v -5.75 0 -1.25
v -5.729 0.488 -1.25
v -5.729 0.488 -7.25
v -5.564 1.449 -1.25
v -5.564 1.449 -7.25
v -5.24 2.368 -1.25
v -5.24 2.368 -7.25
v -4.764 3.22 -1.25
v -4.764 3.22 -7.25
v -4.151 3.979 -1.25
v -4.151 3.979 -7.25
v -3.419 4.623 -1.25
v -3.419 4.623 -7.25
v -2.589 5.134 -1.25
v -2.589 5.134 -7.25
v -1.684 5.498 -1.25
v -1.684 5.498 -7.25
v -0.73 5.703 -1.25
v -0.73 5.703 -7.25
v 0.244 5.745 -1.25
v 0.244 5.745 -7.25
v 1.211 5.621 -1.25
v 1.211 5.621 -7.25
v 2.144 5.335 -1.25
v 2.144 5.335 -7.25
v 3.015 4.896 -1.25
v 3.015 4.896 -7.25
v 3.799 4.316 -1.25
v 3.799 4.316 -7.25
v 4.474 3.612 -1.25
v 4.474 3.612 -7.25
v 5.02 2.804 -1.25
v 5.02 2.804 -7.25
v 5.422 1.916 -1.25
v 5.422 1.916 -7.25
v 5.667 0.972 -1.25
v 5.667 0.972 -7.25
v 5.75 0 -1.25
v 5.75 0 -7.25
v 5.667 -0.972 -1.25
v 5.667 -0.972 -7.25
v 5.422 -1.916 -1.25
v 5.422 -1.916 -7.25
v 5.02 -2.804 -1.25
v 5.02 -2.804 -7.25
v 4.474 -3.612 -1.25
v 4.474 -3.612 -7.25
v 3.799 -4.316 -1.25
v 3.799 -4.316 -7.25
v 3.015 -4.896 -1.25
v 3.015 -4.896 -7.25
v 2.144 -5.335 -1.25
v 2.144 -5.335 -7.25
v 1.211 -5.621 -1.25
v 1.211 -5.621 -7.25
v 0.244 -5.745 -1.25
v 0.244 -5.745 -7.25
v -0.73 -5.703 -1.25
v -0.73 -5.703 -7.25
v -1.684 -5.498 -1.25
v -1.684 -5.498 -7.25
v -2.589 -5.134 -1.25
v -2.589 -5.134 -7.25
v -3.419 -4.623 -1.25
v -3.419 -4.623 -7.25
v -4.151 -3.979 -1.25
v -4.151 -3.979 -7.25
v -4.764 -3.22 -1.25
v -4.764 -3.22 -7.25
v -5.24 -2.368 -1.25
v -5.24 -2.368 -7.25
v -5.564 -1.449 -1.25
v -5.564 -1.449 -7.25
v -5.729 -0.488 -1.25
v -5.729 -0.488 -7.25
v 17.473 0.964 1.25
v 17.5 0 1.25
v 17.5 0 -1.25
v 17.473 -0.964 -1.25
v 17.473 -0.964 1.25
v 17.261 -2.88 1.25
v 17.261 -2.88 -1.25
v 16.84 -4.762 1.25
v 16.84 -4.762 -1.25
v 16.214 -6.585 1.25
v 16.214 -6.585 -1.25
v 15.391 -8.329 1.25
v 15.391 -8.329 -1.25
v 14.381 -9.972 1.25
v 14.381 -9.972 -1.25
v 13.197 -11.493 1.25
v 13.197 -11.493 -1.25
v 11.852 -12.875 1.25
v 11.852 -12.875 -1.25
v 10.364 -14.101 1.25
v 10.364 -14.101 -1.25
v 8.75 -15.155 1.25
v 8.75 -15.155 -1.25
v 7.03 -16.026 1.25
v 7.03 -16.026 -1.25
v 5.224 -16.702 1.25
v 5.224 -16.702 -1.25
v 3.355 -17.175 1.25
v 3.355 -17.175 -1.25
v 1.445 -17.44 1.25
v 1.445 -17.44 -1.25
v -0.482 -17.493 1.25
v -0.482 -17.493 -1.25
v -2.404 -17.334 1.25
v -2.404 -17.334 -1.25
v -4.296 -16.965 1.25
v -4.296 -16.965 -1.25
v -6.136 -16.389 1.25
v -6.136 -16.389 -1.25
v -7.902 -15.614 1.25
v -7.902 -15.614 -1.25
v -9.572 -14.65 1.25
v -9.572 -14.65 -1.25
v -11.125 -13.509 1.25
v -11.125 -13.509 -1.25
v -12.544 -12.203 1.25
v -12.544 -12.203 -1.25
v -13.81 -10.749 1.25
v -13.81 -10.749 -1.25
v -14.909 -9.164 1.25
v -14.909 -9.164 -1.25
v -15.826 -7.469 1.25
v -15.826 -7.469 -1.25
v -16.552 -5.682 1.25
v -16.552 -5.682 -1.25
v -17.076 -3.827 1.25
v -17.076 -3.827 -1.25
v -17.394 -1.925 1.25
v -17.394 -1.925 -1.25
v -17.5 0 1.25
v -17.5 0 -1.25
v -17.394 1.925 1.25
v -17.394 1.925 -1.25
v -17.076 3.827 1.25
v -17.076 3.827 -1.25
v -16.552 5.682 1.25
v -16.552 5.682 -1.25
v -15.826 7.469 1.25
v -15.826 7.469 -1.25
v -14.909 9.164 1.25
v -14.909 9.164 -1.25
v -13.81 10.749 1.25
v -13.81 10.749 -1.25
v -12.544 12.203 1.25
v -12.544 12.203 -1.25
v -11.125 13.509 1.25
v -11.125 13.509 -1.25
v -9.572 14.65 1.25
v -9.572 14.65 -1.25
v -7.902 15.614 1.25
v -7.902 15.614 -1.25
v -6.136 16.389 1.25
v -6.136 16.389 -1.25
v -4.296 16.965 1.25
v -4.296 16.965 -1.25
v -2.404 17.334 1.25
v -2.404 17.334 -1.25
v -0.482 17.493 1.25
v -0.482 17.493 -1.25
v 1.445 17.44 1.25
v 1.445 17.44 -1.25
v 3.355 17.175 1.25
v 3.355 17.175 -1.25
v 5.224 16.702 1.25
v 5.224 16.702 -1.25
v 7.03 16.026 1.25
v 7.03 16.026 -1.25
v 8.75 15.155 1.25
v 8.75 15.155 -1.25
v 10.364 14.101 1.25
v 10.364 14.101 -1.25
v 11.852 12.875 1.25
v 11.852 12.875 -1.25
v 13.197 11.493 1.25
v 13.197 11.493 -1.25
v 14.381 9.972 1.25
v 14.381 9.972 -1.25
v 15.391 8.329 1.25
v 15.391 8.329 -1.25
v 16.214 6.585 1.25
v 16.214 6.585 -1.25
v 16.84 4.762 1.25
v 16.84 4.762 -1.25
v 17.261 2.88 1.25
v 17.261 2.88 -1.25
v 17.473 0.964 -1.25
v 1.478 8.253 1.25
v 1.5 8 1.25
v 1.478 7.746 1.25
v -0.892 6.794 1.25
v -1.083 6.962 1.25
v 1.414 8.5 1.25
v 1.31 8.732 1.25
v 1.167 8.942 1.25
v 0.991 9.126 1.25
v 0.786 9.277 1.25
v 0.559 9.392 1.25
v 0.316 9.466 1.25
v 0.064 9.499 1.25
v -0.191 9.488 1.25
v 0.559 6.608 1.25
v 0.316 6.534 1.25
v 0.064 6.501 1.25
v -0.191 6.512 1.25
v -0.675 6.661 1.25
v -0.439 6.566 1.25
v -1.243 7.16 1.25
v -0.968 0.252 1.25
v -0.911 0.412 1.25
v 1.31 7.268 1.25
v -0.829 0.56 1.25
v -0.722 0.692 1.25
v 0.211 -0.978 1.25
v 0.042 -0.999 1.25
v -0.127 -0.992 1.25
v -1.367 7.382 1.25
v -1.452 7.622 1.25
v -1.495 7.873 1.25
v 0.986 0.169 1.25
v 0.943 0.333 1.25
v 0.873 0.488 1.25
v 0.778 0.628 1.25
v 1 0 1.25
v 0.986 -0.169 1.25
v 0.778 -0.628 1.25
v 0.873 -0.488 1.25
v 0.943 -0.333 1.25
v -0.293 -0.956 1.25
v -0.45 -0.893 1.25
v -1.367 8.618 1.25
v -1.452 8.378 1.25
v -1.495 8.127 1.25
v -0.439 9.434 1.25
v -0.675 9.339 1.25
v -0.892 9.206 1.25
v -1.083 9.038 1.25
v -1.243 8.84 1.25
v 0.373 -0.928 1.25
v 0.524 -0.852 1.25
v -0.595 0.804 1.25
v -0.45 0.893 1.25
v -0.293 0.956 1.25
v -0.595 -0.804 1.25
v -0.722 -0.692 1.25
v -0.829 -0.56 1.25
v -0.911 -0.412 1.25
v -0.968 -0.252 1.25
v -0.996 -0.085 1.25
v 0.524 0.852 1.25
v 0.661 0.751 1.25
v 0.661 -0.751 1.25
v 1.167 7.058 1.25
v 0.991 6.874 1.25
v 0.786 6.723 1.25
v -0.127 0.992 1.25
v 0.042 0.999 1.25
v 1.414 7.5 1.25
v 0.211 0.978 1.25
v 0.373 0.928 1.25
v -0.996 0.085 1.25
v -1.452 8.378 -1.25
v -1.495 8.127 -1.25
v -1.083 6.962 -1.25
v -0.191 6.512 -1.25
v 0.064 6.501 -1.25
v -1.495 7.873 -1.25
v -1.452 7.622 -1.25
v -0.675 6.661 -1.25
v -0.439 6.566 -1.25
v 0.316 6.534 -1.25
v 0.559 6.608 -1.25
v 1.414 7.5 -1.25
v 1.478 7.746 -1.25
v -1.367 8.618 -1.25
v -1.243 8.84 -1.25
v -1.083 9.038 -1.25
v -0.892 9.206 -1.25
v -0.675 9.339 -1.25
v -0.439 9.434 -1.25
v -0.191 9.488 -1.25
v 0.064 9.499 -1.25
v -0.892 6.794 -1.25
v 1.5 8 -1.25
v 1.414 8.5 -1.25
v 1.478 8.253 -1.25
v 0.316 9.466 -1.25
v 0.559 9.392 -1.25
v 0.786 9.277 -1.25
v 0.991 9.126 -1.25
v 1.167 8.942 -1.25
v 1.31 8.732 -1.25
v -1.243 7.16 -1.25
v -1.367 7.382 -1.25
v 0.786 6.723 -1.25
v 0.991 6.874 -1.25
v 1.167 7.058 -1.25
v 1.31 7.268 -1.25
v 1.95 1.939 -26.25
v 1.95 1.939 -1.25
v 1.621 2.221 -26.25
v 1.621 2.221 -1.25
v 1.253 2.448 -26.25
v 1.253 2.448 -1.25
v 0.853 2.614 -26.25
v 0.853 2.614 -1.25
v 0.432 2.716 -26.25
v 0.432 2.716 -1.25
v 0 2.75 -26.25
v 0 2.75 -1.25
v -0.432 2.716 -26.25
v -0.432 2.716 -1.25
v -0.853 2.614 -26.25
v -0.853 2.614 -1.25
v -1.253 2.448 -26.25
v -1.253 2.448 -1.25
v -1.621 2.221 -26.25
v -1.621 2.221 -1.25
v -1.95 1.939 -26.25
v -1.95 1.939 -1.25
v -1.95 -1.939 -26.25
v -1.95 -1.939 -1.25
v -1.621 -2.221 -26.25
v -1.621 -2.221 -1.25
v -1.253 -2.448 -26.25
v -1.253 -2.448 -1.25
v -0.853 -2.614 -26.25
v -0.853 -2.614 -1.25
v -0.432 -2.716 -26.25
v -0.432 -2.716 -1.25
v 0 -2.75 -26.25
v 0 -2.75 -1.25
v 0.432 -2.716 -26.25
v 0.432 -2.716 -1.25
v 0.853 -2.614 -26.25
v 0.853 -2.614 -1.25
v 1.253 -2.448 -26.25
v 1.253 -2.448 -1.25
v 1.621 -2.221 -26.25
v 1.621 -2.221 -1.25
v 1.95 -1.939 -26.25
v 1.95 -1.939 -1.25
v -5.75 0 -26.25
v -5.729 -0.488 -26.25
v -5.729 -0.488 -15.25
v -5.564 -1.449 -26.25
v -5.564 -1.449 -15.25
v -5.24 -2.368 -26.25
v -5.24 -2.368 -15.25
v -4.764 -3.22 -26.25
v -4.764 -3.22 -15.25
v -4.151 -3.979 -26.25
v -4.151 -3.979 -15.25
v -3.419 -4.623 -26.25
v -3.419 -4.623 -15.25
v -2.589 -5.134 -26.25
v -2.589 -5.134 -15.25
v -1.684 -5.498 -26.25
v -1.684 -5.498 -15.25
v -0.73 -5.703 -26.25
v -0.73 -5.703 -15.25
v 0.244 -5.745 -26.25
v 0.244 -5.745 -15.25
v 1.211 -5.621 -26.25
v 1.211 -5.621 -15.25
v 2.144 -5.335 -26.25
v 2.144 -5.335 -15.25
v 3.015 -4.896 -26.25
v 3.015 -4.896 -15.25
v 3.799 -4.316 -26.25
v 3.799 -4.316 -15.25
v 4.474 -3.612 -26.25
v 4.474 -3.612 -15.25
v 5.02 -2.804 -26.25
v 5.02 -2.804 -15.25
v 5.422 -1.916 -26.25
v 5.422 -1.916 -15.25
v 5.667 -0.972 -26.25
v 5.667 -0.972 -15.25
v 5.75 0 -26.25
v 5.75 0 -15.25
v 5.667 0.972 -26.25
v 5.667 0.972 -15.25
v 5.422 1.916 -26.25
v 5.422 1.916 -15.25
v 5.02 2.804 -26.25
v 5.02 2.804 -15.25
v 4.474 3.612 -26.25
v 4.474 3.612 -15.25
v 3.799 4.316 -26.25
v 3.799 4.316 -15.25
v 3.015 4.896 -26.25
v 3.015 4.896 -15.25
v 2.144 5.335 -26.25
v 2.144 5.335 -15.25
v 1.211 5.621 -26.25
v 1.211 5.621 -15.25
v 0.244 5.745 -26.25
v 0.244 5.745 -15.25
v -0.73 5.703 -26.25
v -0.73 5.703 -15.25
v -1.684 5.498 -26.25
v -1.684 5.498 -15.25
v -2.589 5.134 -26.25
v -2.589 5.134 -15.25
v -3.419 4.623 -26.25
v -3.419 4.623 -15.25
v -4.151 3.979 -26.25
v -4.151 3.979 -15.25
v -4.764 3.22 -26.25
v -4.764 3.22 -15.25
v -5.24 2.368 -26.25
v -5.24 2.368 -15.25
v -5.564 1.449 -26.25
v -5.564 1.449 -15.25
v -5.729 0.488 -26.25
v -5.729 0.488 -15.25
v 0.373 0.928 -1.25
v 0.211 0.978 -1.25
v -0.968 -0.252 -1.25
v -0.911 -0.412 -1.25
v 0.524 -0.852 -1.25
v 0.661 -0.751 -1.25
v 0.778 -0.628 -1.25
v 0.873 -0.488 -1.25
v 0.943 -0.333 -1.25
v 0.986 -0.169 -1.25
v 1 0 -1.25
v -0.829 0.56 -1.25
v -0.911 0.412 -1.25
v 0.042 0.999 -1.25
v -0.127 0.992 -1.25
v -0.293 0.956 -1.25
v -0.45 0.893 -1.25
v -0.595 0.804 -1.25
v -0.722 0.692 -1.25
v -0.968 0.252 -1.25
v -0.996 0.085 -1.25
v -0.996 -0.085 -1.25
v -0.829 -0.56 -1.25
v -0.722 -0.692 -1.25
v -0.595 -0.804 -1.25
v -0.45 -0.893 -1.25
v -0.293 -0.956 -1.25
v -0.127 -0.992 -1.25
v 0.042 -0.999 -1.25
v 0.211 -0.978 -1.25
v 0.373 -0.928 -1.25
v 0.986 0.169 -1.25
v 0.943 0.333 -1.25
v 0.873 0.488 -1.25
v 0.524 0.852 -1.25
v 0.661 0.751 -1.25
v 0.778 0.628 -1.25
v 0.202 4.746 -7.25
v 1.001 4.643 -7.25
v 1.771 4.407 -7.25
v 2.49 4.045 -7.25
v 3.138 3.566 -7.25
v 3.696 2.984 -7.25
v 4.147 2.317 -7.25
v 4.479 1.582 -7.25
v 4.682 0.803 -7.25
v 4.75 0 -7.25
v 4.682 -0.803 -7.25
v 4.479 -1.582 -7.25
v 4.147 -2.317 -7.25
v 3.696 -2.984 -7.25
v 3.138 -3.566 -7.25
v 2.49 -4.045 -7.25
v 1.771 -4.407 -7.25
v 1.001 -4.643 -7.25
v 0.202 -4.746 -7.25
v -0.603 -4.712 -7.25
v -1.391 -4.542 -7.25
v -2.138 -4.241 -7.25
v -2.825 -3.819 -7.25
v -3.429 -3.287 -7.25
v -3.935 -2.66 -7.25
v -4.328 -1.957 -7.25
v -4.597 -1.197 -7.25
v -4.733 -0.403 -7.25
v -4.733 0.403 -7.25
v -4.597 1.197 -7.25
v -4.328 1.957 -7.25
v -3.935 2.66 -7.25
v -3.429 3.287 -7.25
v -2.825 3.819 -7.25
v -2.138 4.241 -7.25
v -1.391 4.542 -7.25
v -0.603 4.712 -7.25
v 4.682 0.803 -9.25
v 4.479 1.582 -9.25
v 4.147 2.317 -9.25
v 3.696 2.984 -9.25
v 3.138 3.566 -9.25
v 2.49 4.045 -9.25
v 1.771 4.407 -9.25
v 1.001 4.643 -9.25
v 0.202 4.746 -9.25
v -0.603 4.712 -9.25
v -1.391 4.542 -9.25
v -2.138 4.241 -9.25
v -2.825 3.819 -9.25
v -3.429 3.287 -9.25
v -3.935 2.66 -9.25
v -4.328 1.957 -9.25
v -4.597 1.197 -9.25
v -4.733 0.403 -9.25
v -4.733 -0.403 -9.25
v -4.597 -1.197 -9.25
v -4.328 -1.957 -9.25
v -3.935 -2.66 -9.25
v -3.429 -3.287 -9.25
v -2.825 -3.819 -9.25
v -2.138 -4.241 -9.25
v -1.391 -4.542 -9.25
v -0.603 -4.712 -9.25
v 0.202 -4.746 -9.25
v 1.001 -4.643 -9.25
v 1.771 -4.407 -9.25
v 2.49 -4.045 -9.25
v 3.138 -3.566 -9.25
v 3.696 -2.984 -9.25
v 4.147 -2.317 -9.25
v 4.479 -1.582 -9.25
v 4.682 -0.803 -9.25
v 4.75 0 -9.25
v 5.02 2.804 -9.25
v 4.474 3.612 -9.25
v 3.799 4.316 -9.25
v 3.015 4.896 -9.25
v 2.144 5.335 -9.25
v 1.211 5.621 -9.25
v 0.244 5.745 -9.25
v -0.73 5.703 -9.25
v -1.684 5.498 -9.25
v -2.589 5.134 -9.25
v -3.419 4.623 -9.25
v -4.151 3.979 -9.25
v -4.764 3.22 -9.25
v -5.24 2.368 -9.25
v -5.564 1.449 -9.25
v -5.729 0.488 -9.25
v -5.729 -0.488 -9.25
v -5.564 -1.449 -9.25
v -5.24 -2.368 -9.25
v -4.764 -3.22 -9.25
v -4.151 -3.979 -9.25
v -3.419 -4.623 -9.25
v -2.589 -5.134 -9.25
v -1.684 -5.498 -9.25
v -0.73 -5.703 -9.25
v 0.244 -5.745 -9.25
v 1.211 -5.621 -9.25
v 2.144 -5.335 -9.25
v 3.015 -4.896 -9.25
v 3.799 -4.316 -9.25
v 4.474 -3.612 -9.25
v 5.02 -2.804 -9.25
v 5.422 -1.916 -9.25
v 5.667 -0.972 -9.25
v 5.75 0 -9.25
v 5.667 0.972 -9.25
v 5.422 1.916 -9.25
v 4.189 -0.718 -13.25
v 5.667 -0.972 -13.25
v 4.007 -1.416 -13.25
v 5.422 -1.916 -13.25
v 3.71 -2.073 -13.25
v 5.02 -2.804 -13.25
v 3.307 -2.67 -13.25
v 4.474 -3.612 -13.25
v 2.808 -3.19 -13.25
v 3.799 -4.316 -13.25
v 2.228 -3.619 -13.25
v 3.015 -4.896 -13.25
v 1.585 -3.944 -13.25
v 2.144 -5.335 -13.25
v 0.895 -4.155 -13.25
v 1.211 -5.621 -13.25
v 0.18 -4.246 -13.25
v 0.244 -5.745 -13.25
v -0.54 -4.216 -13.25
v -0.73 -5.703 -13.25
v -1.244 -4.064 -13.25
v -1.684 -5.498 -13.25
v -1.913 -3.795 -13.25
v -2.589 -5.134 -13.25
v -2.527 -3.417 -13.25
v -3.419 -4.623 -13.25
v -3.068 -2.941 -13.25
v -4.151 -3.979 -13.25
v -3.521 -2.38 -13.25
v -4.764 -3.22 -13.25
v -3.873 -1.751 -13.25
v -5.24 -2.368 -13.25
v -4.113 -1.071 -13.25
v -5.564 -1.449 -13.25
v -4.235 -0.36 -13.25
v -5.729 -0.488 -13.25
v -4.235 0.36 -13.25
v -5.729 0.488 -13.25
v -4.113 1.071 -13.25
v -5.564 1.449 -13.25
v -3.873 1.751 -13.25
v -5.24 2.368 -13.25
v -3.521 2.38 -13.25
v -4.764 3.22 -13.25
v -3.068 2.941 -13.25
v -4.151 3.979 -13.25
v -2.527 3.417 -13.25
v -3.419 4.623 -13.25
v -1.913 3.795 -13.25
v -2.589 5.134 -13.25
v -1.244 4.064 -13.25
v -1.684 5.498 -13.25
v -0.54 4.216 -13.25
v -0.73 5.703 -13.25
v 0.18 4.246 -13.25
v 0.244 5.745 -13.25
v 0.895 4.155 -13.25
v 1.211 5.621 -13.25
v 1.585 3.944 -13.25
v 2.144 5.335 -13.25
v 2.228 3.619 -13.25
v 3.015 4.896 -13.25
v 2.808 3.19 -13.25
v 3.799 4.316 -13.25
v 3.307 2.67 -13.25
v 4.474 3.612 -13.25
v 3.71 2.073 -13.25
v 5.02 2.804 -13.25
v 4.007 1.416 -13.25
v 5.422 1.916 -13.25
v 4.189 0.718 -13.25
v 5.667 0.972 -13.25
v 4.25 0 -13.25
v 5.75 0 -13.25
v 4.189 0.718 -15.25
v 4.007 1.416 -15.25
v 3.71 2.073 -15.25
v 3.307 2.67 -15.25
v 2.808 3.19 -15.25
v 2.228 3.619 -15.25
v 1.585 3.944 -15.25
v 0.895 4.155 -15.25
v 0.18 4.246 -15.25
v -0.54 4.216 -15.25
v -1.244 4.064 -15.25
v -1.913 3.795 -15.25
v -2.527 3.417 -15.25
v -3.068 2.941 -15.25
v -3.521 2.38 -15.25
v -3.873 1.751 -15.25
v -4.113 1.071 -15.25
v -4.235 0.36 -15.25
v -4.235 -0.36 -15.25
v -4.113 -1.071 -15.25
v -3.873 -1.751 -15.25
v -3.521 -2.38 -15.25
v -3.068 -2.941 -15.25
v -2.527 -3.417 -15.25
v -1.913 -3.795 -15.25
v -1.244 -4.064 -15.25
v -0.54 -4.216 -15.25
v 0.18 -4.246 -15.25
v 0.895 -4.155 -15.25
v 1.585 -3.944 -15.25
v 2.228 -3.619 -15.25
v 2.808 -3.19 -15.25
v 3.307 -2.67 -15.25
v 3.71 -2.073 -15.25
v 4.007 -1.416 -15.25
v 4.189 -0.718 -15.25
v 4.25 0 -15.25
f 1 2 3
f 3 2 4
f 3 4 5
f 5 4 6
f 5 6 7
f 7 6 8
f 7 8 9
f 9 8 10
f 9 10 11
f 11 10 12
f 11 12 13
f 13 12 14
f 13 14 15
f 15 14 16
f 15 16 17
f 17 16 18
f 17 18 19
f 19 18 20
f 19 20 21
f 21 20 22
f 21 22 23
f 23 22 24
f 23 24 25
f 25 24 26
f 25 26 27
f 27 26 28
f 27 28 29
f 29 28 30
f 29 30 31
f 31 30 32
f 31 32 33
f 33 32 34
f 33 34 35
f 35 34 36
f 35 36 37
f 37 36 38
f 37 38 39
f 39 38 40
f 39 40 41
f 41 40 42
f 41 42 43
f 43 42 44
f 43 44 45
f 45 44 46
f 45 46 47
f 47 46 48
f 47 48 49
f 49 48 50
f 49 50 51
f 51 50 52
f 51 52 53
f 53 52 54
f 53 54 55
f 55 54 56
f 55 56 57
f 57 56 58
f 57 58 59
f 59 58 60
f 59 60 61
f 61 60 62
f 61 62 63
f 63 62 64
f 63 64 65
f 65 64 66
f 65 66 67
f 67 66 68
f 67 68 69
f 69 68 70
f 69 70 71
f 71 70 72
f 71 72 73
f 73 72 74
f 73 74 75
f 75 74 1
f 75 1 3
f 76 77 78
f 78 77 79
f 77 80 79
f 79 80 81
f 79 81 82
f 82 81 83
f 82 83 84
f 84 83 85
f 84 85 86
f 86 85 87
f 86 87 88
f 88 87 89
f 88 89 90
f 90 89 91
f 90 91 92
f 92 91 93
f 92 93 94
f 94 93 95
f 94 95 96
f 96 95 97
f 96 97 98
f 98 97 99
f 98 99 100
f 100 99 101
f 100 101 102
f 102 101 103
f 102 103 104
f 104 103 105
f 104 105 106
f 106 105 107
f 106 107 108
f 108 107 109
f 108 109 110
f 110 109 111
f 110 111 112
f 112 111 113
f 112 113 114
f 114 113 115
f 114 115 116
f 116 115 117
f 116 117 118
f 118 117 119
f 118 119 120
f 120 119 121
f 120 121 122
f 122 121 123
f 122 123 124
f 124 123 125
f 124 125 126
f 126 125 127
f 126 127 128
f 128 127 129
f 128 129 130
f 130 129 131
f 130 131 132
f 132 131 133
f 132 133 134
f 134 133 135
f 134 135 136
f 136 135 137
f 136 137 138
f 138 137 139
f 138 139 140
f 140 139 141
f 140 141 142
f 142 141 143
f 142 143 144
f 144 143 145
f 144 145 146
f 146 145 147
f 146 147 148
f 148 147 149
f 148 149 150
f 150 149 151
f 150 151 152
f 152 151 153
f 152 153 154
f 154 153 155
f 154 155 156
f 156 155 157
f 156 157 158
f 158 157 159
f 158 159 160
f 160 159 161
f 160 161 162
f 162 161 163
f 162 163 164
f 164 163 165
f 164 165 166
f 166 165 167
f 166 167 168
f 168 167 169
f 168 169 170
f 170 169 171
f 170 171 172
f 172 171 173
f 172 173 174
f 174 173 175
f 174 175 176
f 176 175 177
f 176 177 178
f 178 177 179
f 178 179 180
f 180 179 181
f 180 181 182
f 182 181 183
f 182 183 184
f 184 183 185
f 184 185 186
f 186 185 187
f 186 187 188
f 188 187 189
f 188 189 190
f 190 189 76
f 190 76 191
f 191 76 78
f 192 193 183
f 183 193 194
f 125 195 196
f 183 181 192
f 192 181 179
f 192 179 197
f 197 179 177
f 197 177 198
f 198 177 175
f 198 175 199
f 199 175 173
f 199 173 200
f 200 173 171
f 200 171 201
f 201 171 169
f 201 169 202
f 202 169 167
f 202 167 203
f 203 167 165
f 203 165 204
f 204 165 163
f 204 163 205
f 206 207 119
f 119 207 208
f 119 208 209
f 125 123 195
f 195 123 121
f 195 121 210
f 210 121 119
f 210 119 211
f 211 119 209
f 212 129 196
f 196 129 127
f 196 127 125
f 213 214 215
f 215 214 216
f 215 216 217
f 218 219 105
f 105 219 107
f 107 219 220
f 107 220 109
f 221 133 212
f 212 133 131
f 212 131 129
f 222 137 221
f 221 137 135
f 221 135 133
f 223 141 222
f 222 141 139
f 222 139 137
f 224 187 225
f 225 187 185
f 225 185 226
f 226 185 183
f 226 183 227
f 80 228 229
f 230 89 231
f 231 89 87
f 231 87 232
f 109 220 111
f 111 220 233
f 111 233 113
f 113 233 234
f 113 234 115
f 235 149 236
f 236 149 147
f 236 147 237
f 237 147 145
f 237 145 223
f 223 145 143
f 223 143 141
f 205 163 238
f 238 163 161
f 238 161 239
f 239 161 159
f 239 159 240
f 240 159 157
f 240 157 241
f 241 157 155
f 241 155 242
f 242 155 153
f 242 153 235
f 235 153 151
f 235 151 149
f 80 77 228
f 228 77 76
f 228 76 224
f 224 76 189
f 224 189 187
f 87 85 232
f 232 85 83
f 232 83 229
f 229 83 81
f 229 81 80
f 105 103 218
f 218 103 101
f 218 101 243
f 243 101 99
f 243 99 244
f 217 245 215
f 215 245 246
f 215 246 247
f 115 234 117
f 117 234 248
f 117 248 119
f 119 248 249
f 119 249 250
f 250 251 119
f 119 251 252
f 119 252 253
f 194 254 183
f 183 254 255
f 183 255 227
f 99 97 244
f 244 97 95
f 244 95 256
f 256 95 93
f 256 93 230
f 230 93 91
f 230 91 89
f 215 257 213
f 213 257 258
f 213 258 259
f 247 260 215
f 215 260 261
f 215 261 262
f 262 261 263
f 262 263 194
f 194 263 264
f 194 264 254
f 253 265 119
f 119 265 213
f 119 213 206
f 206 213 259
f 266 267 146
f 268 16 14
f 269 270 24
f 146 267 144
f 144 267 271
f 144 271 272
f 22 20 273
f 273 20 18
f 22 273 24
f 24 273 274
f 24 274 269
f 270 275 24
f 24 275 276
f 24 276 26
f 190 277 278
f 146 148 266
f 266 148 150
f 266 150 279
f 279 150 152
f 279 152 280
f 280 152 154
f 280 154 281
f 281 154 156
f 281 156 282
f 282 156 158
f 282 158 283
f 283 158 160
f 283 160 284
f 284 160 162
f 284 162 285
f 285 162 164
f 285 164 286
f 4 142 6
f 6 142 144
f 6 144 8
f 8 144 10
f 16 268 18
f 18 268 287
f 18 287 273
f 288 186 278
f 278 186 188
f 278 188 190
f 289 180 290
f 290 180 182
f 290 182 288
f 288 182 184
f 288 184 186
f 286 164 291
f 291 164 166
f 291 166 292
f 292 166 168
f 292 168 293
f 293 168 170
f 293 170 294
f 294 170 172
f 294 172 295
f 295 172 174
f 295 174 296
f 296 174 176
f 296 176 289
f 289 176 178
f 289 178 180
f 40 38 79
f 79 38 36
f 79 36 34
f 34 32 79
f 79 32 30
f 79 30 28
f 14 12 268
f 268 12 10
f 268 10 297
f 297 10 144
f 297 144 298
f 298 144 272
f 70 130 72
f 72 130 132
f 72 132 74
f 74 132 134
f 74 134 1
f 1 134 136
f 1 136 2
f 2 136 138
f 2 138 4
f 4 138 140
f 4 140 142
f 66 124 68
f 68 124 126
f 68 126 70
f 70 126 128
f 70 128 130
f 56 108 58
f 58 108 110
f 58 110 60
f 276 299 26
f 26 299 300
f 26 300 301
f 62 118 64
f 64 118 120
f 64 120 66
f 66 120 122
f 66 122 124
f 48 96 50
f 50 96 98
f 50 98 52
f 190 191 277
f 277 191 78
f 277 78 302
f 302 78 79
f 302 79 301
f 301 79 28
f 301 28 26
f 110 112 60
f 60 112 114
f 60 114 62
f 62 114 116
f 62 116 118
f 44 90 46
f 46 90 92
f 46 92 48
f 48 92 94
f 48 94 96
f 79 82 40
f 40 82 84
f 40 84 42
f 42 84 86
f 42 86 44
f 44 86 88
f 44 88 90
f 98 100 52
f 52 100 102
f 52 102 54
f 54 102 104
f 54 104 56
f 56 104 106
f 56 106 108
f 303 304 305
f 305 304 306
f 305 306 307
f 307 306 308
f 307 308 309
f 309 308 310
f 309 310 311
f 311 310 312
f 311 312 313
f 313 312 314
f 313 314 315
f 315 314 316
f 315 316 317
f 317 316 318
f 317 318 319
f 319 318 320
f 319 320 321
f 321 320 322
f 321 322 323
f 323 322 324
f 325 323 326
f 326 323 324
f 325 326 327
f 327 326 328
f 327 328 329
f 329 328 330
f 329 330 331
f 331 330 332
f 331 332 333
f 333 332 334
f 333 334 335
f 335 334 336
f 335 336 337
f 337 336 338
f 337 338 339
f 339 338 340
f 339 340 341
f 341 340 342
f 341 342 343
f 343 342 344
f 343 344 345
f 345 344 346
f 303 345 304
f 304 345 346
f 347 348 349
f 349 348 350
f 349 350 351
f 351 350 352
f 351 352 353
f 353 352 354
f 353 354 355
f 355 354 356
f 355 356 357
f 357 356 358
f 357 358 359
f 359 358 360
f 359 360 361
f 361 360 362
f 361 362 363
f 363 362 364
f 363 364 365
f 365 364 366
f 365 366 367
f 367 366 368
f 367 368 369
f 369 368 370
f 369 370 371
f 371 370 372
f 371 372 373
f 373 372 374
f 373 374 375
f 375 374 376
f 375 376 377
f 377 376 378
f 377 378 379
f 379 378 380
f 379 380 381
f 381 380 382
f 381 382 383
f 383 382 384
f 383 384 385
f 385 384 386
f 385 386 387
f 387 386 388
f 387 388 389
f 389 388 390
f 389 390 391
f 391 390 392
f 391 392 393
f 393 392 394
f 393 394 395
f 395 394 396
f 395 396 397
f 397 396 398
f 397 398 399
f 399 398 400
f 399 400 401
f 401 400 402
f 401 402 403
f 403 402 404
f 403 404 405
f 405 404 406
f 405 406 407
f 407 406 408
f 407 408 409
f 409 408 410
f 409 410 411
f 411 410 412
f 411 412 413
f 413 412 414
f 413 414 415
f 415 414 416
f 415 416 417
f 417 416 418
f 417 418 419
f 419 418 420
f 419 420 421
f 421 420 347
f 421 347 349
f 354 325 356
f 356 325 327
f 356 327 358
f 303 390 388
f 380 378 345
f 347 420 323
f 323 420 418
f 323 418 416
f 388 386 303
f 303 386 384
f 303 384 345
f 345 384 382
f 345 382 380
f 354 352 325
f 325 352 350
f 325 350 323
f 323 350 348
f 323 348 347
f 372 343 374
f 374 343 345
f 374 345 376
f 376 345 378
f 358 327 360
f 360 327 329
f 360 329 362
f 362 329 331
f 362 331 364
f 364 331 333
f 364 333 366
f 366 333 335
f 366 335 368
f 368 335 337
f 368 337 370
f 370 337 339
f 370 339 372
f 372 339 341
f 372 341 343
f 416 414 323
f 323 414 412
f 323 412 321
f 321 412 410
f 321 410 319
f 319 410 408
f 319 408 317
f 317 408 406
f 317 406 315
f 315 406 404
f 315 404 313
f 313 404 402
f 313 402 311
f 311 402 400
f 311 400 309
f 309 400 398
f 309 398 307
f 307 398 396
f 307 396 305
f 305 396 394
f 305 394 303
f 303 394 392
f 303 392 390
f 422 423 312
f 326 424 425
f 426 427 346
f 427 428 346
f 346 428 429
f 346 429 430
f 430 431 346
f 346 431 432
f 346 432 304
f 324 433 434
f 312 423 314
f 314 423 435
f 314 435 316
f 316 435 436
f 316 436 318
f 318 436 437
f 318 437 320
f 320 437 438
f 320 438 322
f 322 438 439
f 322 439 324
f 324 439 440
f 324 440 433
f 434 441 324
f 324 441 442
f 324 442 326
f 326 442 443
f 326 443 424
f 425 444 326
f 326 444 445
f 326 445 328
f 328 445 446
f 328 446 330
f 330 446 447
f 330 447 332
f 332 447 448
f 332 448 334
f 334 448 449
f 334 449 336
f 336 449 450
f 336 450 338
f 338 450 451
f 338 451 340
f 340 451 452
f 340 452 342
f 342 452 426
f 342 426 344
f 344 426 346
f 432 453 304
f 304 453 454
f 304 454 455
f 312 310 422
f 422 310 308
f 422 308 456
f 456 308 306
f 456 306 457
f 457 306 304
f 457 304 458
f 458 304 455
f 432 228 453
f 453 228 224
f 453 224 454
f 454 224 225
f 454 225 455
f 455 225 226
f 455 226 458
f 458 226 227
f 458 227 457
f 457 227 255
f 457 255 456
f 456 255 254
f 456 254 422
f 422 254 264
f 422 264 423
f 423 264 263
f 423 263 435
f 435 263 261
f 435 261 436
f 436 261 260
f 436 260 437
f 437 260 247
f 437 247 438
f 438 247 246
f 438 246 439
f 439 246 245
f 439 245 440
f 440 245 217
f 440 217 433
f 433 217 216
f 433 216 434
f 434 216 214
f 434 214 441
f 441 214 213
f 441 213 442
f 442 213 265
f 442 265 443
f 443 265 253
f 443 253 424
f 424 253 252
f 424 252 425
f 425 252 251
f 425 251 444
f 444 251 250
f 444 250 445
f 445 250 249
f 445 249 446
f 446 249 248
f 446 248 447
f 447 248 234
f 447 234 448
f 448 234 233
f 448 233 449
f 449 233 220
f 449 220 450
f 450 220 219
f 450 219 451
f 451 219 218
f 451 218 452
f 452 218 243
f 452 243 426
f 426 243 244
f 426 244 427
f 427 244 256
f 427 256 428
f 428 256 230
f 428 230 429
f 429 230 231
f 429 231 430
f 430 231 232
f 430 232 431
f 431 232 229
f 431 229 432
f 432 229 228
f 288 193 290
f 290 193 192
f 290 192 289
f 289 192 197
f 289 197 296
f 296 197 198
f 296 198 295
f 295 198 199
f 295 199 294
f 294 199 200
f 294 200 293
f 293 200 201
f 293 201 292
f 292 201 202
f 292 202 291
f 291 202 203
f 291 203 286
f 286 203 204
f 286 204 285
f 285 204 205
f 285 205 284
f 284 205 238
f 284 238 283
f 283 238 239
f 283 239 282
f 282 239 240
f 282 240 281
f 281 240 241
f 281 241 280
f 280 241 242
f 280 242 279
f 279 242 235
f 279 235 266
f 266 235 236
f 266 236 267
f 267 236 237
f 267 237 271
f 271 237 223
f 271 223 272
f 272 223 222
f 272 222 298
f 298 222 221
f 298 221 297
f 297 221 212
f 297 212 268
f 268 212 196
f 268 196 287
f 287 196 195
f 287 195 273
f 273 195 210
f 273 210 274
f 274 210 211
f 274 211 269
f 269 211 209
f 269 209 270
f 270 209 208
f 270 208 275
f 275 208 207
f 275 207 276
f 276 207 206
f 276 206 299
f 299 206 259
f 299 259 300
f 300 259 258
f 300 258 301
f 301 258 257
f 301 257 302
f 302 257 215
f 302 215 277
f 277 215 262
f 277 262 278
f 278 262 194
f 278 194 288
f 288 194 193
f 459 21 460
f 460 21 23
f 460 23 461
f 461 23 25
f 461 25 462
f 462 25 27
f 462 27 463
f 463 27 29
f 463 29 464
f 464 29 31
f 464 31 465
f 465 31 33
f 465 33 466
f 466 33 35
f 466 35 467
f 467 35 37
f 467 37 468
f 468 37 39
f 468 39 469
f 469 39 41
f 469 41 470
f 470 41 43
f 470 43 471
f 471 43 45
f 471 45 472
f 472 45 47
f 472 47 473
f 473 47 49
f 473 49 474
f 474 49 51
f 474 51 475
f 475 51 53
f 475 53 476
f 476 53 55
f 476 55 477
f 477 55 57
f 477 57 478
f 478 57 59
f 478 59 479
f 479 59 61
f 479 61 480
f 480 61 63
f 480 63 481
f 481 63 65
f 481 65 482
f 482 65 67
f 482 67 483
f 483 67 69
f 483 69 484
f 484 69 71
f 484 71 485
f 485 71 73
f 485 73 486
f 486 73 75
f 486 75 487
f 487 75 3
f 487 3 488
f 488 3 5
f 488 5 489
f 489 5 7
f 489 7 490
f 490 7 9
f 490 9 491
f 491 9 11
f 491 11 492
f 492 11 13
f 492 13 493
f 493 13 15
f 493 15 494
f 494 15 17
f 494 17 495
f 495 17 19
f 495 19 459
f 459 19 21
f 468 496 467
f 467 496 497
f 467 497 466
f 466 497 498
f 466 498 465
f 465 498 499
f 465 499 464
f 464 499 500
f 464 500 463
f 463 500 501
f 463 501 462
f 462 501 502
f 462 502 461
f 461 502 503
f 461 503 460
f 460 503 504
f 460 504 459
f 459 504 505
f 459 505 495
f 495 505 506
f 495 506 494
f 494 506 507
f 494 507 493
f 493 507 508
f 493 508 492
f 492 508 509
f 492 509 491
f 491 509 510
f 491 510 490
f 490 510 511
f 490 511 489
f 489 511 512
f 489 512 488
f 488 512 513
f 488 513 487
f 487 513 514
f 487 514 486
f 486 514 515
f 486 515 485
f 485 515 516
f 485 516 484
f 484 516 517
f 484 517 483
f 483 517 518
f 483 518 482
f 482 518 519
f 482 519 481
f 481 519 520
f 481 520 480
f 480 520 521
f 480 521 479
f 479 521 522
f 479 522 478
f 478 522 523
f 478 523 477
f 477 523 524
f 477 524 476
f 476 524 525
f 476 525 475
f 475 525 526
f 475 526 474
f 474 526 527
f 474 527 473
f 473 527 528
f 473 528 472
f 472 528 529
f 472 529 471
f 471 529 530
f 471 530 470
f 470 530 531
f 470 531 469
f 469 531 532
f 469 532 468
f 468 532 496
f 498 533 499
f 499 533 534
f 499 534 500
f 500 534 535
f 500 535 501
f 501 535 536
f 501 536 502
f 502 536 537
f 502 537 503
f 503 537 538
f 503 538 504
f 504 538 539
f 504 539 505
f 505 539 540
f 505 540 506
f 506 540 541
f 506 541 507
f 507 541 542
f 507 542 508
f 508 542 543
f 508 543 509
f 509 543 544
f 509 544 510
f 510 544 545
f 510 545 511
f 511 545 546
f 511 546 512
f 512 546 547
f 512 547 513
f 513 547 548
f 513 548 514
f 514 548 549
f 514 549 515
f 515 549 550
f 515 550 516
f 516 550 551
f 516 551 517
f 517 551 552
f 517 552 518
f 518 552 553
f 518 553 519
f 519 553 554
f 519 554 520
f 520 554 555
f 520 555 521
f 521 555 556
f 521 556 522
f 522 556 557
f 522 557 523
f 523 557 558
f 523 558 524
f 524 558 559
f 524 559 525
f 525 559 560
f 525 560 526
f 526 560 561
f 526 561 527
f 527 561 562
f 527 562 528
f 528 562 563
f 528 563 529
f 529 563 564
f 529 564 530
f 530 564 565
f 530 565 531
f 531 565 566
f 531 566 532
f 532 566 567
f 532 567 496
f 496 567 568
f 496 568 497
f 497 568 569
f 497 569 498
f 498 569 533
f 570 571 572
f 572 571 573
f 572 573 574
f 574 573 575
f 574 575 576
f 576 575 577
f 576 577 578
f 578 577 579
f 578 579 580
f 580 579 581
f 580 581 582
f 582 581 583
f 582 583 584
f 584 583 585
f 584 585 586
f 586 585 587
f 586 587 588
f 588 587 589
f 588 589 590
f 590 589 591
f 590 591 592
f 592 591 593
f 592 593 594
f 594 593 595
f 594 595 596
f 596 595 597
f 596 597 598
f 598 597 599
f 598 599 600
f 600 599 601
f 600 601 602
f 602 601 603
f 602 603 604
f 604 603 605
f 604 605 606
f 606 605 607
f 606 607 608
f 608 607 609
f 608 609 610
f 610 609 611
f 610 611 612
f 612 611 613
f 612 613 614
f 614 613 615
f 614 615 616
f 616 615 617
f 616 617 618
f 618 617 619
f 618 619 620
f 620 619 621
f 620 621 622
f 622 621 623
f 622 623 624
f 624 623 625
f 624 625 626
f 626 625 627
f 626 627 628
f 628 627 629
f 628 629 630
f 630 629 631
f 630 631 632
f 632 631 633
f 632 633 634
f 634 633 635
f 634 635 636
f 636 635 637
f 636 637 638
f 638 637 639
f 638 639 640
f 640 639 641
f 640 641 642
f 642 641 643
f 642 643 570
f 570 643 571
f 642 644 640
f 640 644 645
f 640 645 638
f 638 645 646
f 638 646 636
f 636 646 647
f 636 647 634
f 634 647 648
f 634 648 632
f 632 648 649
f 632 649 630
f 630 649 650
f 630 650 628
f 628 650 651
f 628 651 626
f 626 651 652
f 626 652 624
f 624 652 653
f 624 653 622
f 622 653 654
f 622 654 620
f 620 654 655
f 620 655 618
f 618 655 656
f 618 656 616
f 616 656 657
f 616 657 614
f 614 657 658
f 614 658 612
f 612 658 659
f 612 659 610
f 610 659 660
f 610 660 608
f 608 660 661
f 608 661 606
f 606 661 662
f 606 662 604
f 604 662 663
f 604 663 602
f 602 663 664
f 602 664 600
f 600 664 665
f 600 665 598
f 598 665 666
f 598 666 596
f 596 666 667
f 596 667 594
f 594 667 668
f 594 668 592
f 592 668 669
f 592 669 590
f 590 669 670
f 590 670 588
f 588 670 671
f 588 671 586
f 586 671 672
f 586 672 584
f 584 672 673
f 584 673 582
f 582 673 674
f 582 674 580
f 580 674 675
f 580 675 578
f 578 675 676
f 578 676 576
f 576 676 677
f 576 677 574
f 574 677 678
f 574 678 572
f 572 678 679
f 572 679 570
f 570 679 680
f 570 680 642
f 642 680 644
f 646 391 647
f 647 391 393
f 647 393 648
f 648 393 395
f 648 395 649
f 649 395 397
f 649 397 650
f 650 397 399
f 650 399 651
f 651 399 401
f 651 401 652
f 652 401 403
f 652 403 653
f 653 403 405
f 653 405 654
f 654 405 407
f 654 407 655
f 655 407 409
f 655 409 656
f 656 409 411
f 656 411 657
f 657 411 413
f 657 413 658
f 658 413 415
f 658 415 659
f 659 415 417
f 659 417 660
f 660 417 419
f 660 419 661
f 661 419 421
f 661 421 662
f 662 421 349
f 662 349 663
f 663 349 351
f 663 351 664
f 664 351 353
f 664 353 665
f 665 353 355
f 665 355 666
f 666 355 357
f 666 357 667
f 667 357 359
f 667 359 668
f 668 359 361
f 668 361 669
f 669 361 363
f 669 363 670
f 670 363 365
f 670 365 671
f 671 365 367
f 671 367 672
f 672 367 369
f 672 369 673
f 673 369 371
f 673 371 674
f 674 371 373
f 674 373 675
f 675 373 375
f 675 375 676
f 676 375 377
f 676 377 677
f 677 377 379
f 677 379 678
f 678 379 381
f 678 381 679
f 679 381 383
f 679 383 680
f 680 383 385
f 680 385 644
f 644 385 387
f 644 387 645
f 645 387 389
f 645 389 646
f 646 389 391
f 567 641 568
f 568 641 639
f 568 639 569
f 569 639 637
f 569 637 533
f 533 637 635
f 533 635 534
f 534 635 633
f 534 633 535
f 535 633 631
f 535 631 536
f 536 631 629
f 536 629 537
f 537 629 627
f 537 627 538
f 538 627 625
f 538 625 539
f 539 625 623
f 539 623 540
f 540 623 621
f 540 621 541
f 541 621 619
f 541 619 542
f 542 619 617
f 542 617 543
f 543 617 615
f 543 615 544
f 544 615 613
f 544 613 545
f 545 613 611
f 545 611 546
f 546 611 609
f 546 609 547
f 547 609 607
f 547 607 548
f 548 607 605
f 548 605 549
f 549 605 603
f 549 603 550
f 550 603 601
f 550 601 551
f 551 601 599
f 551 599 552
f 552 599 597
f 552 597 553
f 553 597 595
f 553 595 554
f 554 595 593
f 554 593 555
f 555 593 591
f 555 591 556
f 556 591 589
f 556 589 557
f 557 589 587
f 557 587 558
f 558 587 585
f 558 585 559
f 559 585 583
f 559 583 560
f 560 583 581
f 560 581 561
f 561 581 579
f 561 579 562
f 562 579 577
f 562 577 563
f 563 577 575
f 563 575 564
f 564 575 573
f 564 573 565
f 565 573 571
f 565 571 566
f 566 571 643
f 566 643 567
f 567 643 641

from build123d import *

# Parameters (mm, degrees)
CROQUIS2_R              = 17.5
SALIENTE_EXTRUIR1_DEPTH = 1.25
SALIENTE_EXTRUIR2_DEPTH = 25
CROQUIS4_R              = 1
CORTAR_EXTRUIR1_DEPTH   = 15
CROQUIS7_R              = 1.5
CORTAR_EXTRUIR2_DEPTH   = 10
CROQUIS8_W              = 1.5
CROQUIS8_H              = 2
CROQUIS8_W_2            = 1


with BuildPart() as part:
    # Croquis2 → Saliente-Extruir1 (new, symmetric)
    with BuildSketch(Plane.XY):
        Circle(CROQUIS2_R)
    extrude(amount=SALIENTE_EXTRUIR1_DEPTH, both=True)

    # Croquis3 → Saliente-Extruir2 (add)
    with BuildSketch(Plane(origin=(0, 0, -1.25), x_dir=(-1, 0, 0), z_dir=(0, 0, -1))):
        with BuildLine():
            ThreePointArc((5.75, 0), (4.065863992, 4.065863992), (0, 5.75))
            Line((0, 5.75), (0, 2.75))
            ThreePointArc((0, 2.75), (1.055947953, 2.53918765), (1.95, 1.939071943))
            ThreePointArc((1.95, 1.939071943), (2.542144764, 1.048808848), (2.75, 0))
            ThreePointArc((2.75, 0), (2.542144764, -1.048808848), (1.95, -1.939071943))
            ThreePointArc((1.95, -1.939071943), (1.055947953, -2.53918765), (0, -2.75))
            Line((0, -2.75), (0, -5.75))
            ThreePointArc((0, -5.75), (4.065863992, -4.065863992), (5.75, 0))
        make_face()
        with BuildLine():
            Line((0, 2.75), (0, 5.75))
            ThreePointArc((0, 5.75), (-5.75, 0), (0, -5.75))
            Line((0, -5.75), (0, -2.75))
            ThreePointArc((0, -2.75), (-1.055947953, -2.53918765), (-1.95, -1.939071943))
            ThreePointArc((-1.95, -1.939071943), (-2.75, 0), (-1.95, 1.939071943))
            ThreePointArc((-1.95, 1.939071943), (-1.055947953, 2.53918765), (0, 2.75))
        make_face()
        with BuildLine():
            Line((-1.95, -1.939071943), (-1.95, 1.939071943))
            ThreePointArc((-1.95, 1.939071943), (-2.75, 0), (-1.95, -1.939071943))
        make_face()
        with BuildLine():
            ThreePointArc((2.75, 0), (2.542144764, 1.048808848), (1.95, 1.939071943))
            Line((1.95, 1.939071943), (1.95, -1.939071943))
            ThreePointArc((1.95, -1.939071943), (2.542144764, -1.048808848), (2.75, 0))
        make_face()
    extrude(amount=SALIENTE_EXTRUIR2_DEPTH)

    # Croquis4 → Cortar-Extruir1 (cut)
    with BuildSketch(Plane.XY.offset(1.25)):
        Circle(CROQUIS4_R)
    extrude(amount=-CORTAR_EXTRUIR1_DEPTH, mode=Mode.SUBTRACT)

    # Croquis7 → Cortar-Extruir2 (cut)
    with BuildSketch(Plane.XY.offset(1.25)):
        with Locations((0, 8)):
            Circle(CROQUIS7_R)
    extrude(amount=-CORTAR_EXTRUIR2_DEPTH, mode=Mode.SUBTRACT)

    # Croquis8 → Cortar-Revolución1 (revolve, cut)
    with BuildSketch(Plane(origin=(0, 0, 0), x_dir=(1, 0, 0), z_dir=(0, 1, 0))):
        with Locations((5, 14.25)):
            Rectangle(CROQUIS8_W, CROQUIS8_H)
        with Locations((5.25, 8.25)):
            Rectangle(CROQUIS8_W_2, CROQUIS8_H)
    revolve(axis=Axis((0, 0, 0), (0, 0, -1)), mode=Mode.SUBTRACT)


solid = part.part
